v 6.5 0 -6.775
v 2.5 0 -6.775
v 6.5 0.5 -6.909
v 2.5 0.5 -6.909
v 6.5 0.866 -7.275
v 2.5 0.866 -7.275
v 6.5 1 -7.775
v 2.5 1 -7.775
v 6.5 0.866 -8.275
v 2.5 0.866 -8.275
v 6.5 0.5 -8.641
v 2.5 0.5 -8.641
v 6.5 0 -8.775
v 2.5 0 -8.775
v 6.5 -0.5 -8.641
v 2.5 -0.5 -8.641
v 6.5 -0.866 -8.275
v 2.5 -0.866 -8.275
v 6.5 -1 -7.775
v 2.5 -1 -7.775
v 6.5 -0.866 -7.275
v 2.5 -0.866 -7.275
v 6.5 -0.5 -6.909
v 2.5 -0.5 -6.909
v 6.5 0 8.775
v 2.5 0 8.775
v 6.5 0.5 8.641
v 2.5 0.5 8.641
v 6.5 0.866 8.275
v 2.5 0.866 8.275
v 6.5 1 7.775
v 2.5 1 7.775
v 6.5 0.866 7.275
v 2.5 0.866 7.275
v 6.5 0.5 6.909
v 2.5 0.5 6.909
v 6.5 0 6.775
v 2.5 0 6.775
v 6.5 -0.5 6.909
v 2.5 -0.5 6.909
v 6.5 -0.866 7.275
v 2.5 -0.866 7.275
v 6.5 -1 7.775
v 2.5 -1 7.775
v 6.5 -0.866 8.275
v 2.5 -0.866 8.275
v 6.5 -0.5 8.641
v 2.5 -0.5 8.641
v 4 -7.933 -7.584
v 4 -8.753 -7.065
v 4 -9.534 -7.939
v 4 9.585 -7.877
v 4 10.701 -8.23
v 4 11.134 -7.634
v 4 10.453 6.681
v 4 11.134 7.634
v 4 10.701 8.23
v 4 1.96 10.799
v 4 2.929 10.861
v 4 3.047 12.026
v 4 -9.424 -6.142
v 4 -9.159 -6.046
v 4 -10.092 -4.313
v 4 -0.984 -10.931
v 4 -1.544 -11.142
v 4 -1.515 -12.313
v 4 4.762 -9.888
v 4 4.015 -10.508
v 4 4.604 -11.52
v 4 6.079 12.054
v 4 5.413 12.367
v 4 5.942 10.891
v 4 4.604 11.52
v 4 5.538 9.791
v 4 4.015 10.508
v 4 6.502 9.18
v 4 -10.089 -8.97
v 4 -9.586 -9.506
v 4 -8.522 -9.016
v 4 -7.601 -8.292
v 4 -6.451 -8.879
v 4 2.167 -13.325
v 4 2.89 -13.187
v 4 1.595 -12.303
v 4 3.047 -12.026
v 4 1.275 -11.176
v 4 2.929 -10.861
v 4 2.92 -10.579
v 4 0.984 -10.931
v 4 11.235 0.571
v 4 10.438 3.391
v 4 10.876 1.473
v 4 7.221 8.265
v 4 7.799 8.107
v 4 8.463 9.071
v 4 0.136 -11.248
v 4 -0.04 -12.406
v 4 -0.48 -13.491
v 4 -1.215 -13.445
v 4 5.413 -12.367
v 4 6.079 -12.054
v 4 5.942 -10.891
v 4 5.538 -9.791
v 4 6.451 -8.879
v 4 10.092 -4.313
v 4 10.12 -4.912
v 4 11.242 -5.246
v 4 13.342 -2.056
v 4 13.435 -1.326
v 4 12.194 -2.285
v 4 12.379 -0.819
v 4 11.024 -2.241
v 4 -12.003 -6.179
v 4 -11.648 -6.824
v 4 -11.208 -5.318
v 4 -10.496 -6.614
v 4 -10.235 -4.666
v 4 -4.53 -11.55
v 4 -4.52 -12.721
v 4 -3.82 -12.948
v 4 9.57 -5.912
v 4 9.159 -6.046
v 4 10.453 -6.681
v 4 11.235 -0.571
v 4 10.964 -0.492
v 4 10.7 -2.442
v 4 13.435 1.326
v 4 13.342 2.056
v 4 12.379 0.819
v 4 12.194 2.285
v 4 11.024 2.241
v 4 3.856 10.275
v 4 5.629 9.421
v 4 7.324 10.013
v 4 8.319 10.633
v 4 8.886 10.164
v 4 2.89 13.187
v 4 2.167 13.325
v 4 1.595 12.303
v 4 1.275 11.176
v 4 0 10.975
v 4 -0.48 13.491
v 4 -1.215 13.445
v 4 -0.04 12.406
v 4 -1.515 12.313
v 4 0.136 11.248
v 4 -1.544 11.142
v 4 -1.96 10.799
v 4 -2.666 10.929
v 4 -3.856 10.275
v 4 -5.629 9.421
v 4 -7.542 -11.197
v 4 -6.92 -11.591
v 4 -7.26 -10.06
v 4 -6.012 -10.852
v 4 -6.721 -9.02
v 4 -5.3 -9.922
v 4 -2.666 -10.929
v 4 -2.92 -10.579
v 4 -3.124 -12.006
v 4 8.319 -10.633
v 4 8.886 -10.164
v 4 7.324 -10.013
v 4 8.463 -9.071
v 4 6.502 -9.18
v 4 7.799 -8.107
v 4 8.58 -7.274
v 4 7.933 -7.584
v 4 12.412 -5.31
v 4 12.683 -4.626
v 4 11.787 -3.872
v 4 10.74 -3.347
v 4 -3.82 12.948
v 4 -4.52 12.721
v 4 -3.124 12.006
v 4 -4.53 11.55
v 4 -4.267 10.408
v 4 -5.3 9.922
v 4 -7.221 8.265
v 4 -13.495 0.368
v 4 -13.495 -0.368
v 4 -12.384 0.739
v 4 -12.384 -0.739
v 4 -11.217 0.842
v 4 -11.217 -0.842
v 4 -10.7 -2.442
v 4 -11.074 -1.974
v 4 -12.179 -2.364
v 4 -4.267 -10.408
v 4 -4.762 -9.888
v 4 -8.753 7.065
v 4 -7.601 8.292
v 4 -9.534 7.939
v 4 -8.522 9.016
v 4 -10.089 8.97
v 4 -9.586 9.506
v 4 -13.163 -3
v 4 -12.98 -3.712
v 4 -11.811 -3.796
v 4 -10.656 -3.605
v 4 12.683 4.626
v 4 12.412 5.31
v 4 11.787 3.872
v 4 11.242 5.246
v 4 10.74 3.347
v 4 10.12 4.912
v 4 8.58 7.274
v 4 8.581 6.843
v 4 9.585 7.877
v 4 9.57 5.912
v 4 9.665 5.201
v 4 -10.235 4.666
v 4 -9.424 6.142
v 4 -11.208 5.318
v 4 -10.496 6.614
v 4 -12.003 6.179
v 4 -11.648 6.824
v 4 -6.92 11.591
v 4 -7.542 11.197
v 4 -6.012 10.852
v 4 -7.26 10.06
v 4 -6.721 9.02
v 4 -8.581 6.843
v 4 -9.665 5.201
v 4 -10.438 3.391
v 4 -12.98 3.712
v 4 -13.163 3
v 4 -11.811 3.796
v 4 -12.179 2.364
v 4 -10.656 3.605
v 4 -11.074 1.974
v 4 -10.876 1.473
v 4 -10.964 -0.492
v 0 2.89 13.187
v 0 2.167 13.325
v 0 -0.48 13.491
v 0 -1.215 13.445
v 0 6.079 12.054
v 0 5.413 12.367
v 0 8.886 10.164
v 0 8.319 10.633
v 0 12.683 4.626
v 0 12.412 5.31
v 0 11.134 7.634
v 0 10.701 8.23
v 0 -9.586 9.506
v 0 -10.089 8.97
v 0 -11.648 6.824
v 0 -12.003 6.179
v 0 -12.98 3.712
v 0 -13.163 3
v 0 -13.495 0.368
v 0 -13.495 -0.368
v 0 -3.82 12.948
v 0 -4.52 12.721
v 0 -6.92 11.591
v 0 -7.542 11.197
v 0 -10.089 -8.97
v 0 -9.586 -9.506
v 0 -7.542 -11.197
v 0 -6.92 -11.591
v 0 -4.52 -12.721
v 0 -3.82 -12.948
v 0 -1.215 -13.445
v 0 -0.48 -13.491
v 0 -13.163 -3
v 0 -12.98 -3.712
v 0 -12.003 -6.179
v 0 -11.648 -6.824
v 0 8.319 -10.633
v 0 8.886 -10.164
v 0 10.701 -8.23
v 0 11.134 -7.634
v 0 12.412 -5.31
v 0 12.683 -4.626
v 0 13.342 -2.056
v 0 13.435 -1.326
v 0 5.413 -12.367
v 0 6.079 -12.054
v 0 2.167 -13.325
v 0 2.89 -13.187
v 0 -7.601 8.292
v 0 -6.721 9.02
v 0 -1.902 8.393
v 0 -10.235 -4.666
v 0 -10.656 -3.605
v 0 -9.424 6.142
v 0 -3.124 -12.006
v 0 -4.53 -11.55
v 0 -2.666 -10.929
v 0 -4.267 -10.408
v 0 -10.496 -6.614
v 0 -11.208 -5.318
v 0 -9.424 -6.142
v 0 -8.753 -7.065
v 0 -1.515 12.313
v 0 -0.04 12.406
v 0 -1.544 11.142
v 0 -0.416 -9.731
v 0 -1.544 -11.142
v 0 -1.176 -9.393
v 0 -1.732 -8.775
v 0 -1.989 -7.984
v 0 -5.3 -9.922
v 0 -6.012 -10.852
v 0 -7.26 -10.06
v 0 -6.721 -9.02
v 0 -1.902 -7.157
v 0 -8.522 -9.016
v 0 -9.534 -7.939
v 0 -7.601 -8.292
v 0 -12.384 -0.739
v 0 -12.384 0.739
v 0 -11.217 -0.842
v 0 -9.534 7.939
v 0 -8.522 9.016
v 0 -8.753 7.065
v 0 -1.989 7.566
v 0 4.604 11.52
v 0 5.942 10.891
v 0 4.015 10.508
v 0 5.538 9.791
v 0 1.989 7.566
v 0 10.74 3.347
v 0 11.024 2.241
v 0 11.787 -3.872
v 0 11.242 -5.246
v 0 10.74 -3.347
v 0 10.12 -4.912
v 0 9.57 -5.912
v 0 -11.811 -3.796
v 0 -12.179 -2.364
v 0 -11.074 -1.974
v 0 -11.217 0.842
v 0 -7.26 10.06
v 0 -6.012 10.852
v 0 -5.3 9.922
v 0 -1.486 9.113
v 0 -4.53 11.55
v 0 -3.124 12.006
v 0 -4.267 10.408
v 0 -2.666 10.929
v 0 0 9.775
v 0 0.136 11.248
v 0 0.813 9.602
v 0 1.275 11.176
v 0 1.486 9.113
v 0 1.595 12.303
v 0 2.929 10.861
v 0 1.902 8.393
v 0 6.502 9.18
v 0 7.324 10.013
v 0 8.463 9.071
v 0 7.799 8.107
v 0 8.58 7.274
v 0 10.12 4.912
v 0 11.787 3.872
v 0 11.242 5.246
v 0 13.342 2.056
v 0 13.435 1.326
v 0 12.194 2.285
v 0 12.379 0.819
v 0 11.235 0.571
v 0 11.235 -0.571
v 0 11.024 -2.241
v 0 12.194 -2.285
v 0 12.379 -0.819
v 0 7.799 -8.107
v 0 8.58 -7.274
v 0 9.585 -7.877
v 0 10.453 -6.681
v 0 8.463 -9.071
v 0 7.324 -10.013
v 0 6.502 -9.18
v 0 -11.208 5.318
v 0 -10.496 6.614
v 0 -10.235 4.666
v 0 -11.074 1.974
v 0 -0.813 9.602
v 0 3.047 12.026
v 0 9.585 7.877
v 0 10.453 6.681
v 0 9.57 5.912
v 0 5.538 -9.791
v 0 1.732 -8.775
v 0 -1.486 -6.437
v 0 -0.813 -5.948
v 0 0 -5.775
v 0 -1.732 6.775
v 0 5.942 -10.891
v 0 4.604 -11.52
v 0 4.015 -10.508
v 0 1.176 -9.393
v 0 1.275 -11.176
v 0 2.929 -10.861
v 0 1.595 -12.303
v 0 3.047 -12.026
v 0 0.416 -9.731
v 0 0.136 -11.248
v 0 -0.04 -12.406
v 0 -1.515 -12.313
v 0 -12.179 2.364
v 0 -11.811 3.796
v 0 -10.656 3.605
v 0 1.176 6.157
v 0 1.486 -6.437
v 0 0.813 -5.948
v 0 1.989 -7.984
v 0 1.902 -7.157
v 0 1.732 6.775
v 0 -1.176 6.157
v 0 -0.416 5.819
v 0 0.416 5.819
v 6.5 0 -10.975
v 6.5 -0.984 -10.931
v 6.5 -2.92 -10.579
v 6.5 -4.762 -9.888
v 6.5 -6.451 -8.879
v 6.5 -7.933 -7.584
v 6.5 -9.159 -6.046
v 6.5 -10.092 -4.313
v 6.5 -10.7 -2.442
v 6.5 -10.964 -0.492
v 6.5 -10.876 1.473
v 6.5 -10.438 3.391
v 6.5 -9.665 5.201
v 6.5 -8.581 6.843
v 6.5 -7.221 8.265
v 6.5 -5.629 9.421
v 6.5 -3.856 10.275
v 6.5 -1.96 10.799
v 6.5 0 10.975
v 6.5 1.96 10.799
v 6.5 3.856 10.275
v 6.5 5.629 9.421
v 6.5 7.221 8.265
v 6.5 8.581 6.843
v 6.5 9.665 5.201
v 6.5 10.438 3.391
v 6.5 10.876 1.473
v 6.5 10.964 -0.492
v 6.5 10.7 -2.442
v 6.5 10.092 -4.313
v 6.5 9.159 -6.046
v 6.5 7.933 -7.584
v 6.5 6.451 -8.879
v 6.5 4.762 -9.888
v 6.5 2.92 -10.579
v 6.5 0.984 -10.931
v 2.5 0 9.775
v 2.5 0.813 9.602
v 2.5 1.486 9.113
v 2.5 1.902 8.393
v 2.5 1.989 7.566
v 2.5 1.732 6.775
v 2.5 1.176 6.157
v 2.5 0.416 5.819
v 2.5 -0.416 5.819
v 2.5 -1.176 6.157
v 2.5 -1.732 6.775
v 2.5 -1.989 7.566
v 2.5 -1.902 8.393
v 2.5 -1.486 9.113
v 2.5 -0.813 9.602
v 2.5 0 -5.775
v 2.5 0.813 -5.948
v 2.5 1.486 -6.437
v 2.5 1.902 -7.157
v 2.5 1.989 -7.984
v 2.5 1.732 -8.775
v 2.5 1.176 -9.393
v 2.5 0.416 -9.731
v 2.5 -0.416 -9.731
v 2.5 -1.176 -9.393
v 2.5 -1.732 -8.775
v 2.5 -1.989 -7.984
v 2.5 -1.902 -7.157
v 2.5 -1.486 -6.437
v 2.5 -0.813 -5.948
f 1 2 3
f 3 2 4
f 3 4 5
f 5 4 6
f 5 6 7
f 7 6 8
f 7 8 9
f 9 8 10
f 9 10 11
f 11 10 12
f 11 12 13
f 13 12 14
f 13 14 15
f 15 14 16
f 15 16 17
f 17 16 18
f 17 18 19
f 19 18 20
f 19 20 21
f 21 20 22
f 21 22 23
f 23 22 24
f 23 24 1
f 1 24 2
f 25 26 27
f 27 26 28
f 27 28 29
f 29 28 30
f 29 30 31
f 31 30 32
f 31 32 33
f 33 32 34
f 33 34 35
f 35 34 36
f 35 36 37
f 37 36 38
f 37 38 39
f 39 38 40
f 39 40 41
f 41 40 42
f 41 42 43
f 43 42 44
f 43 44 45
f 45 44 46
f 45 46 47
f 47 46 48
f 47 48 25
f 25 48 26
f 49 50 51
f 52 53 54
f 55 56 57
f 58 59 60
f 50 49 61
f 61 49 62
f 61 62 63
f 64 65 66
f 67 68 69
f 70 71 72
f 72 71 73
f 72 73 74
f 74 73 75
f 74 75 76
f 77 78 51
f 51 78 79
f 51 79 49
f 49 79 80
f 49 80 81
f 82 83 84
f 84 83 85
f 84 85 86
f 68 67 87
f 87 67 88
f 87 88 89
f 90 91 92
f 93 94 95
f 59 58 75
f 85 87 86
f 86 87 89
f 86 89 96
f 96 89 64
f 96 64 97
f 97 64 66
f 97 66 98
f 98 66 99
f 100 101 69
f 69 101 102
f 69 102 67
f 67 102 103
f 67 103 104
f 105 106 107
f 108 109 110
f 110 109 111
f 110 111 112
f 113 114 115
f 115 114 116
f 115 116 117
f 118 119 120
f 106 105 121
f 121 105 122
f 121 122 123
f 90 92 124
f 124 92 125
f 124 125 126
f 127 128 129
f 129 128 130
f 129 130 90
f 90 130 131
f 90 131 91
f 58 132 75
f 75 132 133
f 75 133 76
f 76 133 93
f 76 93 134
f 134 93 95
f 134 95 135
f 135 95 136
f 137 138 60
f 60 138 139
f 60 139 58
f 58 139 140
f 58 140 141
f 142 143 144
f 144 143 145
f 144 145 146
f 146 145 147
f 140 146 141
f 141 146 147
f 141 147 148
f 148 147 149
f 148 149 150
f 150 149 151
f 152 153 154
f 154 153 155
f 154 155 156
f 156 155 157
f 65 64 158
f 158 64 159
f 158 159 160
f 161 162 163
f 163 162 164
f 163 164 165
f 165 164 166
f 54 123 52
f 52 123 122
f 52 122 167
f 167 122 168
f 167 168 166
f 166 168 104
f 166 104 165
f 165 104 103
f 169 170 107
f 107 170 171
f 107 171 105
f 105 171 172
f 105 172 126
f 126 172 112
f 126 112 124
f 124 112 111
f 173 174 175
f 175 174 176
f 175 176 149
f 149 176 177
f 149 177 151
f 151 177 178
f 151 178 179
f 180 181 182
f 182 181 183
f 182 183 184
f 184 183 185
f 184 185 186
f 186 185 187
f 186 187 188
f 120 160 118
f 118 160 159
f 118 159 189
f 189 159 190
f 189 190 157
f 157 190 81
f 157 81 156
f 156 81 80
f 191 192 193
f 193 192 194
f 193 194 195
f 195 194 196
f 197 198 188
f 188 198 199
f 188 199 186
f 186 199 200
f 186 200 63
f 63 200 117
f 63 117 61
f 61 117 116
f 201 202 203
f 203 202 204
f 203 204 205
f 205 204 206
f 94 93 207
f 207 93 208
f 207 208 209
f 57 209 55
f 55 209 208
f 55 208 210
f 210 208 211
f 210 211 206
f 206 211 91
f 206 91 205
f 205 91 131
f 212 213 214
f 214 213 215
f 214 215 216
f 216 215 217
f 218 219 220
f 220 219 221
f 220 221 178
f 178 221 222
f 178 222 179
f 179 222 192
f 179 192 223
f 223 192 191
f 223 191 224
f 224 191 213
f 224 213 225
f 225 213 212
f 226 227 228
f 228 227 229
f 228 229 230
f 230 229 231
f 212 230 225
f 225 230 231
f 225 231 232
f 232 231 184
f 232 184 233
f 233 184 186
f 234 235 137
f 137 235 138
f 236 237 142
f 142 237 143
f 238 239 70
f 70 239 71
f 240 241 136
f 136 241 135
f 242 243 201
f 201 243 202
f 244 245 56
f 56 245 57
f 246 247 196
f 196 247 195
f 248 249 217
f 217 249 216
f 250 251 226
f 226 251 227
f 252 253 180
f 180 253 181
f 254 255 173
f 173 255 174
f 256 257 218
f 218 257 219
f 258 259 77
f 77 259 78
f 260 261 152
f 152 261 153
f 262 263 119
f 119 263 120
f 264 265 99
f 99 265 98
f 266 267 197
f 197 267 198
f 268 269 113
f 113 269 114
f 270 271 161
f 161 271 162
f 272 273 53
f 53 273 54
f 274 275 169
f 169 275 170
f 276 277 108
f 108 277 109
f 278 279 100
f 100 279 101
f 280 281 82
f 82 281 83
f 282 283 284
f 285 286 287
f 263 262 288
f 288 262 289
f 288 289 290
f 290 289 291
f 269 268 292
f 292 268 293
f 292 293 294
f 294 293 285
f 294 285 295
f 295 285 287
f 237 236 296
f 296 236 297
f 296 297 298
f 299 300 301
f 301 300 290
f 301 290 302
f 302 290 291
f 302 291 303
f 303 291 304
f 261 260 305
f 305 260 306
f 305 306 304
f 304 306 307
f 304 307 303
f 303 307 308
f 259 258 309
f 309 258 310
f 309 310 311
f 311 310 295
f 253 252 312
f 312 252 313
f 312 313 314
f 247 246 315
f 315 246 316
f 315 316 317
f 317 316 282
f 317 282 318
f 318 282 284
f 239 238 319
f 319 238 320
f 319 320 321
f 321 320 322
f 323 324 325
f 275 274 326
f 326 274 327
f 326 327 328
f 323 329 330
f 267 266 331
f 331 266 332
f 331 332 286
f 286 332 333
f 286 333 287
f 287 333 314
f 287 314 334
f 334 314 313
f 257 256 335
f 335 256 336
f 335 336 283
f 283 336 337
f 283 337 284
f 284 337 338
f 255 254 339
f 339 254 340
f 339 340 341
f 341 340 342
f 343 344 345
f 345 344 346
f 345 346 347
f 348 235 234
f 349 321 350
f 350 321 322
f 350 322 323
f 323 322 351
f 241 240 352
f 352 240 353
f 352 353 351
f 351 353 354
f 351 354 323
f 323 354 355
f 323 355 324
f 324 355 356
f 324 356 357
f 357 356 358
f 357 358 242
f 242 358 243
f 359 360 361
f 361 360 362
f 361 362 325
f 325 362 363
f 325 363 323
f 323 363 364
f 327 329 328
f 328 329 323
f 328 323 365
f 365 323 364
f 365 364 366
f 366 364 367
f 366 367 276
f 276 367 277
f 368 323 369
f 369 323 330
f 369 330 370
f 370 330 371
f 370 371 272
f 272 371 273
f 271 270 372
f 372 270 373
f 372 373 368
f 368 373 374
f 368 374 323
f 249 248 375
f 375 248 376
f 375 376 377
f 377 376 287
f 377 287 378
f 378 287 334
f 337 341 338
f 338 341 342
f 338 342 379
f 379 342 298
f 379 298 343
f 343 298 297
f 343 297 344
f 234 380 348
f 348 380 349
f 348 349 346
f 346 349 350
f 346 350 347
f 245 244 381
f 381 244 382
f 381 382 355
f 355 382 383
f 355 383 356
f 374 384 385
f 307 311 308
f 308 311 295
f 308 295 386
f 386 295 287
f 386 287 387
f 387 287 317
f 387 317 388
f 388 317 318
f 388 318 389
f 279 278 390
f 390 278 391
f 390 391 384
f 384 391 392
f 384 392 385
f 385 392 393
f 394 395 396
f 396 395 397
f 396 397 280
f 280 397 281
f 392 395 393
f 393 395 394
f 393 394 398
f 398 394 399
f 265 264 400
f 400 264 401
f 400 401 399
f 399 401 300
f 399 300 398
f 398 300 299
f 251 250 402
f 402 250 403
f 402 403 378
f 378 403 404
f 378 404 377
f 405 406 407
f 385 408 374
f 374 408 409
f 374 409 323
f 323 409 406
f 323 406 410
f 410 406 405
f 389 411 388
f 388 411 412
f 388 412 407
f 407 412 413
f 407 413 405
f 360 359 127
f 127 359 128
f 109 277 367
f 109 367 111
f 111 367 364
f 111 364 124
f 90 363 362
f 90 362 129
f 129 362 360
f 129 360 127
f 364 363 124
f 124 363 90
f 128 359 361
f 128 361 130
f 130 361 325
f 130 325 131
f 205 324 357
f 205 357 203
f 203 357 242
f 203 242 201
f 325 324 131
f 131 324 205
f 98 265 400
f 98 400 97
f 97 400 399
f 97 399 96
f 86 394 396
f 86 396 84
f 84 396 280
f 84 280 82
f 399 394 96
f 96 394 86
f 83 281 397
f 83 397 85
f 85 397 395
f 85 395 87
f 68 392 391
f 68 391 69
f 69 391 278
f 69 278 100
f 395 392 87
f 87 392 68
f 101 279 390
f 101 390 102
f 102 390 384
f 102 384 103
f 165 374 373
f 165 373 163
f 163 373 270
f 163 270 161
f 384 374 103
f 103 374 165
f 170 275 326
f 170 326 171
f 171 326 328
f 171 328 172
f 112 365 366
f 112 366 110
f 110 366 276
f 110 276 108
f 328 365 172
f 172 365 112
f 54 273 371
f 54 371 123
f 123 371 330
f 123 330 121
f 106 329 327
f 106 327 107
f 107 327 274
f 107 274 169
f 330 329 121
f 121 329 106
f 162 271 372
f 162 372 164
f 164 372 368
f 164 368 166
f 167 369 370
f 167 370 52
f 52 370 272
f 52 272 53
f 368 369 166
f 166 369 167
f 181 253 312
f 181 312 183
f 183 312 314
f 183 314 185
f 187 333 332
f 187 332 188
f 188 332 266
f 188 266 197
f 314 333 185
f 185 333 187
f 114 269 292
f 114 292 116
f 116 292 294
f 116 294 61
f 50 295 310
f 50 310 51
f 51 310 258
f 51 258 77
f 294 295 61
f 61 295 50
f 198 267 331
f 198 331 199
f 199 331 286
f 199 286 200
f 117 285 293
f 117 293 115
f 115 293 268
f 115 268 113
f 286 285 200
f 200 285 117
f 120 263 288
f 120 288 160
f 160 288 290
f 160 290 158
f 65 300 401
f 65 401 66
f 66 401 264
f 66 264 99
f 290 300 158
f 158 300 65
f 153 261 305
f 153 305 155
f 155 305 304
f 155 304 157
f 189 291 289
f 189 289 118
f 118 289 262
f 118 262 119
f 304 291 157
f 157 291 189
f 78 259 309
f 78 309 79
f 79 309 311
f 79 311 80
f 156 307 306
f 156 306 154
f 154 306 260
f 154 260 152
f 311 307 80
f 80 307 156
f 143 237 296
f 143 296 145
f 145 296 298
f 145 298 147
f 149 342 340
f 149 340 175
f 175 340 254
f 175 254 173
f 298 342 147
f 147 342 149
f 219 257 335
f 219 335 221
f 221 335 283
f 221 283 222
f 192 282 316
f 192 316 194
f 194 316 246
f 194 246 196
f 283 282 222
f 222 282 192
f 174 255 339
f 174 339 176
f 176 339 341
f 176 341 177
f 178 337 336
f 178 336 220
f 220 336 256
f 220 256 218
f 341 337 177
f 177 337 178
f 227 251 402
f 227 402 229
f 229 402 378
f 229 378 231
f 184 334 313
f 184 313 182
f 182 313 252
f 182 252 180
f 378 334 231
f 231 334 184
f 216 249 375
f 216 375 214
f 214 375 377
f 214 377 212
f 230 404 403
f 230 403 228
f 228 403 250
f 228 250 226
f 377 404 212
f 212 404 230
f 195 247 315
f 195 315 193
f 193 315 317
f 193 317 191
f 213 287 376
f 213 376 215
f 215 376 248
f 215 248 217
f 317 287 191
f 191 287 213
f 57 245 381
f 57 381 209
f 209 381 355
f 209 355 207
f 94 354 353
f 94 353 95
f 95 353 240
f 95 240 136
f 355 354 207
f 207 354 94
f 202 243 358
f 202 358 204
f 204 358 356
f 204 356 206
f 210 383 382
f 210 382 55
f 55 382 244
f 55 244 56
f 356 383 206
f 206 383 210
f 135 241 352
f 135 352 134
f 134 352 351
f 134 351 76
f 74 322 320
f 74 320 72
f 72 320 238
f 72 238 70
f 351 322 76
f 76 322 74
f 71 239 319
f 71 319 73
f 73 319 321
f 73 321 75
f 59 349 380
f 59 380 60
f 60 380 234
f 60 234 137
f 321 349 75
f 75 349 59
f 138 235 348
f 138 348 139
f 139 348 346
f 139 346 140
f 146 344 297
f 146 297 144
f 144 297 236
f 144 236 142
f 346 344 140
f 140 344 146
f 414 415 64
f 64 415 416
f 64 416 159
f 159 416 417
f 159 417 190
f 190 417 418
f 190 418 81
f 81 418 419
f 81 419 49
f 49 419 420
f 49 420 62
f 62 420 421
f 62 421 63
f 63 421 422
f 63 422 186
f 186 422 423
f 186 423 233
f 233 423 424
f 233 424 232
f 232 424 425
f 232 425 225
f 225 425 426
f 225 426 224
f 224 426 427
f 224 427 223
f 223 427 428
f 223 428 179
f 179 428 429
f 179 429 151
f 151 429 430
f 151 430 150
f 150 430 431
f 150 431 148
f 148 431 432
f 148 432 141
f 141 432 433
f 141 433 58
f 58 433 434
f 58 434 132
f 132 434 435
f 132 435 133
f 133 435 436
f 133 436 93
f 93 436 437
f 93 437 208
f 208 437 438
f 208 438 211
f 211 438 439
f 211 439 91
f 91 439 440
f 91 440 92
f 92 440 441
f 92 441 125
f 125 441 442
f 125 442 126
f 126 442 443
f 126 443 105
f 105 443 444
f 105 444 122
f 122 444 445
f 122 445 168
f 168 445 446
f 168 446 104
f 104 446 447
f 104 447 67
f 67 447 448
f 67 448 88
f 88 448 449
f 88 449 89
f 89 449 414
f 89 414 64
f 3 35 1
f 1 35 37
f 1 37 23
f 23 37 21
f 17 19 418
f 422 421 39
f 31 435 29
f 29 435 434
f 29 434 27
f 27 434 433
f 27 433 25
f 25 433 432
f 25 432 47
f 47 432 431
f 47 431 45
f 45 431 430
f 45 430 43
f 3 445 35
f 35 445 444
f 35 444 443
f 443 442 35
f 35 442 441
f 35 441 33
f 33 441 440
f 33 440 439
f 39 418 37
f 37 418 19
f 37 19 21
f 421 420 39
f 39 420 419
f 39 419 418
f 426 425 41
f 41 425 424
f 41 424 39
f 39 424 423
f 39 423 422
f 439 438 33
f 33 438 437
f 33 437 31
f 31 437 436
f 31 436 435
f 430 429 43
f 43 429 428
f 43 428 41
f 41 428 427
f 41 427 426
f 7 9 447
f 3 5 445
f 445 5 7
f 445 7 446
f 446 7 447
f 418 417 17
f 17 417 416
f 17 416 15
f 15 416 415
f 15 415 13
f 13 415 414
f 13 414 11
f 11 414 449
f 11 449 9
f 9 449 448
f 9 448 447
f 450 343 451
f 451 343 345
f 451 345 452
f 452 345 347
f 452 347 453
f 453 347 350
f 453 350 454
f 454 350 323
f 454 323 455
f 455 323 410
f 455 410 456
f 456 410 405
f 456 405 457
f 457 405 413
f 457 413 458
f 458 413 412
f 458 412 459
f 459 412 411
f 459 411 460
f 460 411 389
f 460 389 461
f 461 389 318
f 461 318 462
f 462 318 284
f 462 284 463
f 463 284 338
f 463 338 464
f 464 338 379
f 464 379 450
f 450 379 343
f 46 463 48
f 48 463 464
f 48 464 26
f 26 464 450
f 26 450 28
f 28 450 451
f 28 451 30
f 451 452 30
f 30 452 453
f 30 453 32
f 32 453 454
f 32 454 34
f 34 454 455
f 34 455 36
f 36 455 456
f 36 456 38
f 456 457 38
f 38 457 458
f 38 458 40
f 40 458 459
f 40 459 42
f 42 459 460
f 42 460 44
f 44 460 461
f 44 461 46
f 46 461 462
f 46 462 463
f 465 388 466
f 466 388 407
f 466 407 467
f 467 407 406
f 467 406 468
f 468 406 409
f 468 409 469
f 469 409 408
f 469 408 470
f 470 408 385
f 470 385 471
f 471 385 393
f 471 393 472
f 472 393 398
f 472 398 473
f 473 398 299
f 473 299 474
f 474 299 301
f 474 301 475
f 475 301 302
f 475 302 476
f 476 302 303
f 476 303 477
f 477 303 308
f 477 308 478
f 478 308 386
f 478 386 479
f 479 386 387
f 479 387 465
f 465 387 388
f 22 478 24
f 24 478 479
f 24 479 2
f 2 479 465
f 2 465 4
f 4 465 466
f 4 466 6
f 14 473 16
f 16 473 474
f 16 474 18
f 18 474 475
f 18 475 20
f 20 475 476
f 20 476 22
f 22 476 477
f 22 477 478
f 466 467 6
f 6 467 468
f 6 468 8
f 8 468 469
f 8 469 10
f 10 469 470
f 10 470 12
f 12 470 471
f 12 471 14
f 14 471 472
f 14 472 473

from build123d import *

# Parameters (mm, degrees)
BASPROSKE_W                  = 4
BASPROSKE_H                  = 13.5
TOOTHCUT_DEPTH               = 20.506409203
TEETHCUTS_COUNT              = 25
TEETHCUTS_ANGLE              = 345.6
BORSKE_R                     = 1.5
BORE_DEPTH                   = 50.0000508
ESQUISSE1_R                  = 4.015099064
BOSS_EXTRU_1_DEPTH           = 4
ESQUISSE3_R                  = 10.975
BOSS_EXTRU_2_DEPTH           = 2.5
ENL_V_MAT_EXTRU_1_DEPTH      = 20.500499542
ENL_V_MAT_EXTRU_1_DEPTH_BACK = 20.500499542
ESQUISSE2_R                  = 1
ESQUISSE4_R                  = 2
ENL_V_MAT_EXTRU_2_DEPTH      = 2.5


with BuildPart() as part:
    # BasProSke → Base-Revolve (revolve)
    with BuildSketch(Plane(origin=(0, 0, 0), x_dir=(1, 0, 0), z_dir=(0, 1, 0)), mode=Mode.PRIVATE) as base_revolve_sk:
        with Locations((2, 6.75)):
            Rectangle(BASPROSKE_W, BASPROSKE_H)
    revolve(base_revolve_sk.sketch.rotate(Axis((-10, 0, 0), (1, 0, 0)), 180), axis=Axis((-10, 0, 0), (1, 0, 0)))

    # TooCutSke → ToothCut (cut, through all)
    with BuildSketch(Plane(origin=(0, 0, 0), x_dir=(0, 0, -1), z_dir=(1, 0, 0))):
        with BuildLine():
            ThreePointArc((0.570809389, 11.23450834), (0, 11.249), (-0.570809389, 11.23450834))
            ThreePointArc((-0.570809389, 11.23450834), (-0.823468719, 12.39261054), (-1.341642157, 13.4586939))
            ThreePointArc((-1.341642157, 13.4586939), (0, 13.5254), (1.341642157, 13.4586939))
            ThreePointArc((1.341642157, 13.4586939), (0.823468719, 12.39261054), (0.570809389, 11.23450834))
        make_face()
    toothcut = extrude(amount=TOOTHCUT_DEPTH, mode=Mode.SUBTRACT)

    # TeethCuts: ToothCut ×25 about axis
    teethcuts_axis = Axis((-10, 0, 0), (1, 0, 0))
    for i in range(1, TEETHCUTS_COUNT):
        add(toothcut.rotate(teethcuts_axis, i * TEETHCUTS_ANGLE / (TEETHCUTS_COUNT - 1)), mode=Mode.SUBTRACT)

    # BorSke → Bore (cut, symmetric)
    with BuildSketch(Plane(origin=(0, 0, 0), x_dir=(0, 0, -1), z_dir=(1, 0, 0))):
        with Locations(Location((0, 0, 0), (0, 0, 180))):
            Circle(BORSKE_R)
    extrude(amount=BORE_DEPTH, both=True, mode=Mode.SUBTRACT)

    # Esquisse1 → Boss.-Extru.1 (add)
    with BuildSketch(Plane(origin=(4, 0, 0), x_dir=(0, 0, -1), z_dir=(1, 0, 0))):
        Circle(ESQUISSE1_R)
    extrude(amount=-BOSS_EXTRU_1_DEPTH)

    # Esquisse3 → Boss.-Extru.2 (add)
    with BuildSketch(Plane(origin=(4, 0, 0), x_dir=(0, 0, -1), z_dir=(1, 0, 0))):
        with Locations(Location((0, 0, 0), (0, 0, 180))):
            Circle(ESQUISSE3_R)
    extrude(amount=BOSS_EXTRU_2_DEPTH)

    # Esquisse2 → Enlèv. mat.-Extru.1 (cut, two sides: drawn at the far end of the back side and taken through both)
    with BuildSketch(Plane(origin=(4, 0, 0), x_dir=(0, 0, -1), z_dir=(1, 0, 0)).offset(-ENL_V_MAT_EXTRU_1_DEPTH_BACK)):
        with Locations((-7.775, 0)):
            Circle(ESQUISSE2_R)
        with Locations((7.775, 0)):
            Circle(ESQUISSE2_R)
    extrude(amount=ENL_V_MAT_EXTRU_1_DEPTH + ENL_V_MAT_EXTRU_1_DEPTH_BACK, mode=Mode.SUBTRACT)

    # Esquisse4 → Enlèv. mat.-Extru.2 (cut)
    with BuildSketch(Plane.ZY):
        with Locations((-7.775, 0)):
            Circle(ESQUISSE4_R)
        with Locations((7.775, 0)):
            Circle(ESQUISSE4_R)
    extrude(amount=-ENL_V_MAT_EXTRU_2_DEPTH, mode=Mode.SUBTRACT)


solid = part.part
